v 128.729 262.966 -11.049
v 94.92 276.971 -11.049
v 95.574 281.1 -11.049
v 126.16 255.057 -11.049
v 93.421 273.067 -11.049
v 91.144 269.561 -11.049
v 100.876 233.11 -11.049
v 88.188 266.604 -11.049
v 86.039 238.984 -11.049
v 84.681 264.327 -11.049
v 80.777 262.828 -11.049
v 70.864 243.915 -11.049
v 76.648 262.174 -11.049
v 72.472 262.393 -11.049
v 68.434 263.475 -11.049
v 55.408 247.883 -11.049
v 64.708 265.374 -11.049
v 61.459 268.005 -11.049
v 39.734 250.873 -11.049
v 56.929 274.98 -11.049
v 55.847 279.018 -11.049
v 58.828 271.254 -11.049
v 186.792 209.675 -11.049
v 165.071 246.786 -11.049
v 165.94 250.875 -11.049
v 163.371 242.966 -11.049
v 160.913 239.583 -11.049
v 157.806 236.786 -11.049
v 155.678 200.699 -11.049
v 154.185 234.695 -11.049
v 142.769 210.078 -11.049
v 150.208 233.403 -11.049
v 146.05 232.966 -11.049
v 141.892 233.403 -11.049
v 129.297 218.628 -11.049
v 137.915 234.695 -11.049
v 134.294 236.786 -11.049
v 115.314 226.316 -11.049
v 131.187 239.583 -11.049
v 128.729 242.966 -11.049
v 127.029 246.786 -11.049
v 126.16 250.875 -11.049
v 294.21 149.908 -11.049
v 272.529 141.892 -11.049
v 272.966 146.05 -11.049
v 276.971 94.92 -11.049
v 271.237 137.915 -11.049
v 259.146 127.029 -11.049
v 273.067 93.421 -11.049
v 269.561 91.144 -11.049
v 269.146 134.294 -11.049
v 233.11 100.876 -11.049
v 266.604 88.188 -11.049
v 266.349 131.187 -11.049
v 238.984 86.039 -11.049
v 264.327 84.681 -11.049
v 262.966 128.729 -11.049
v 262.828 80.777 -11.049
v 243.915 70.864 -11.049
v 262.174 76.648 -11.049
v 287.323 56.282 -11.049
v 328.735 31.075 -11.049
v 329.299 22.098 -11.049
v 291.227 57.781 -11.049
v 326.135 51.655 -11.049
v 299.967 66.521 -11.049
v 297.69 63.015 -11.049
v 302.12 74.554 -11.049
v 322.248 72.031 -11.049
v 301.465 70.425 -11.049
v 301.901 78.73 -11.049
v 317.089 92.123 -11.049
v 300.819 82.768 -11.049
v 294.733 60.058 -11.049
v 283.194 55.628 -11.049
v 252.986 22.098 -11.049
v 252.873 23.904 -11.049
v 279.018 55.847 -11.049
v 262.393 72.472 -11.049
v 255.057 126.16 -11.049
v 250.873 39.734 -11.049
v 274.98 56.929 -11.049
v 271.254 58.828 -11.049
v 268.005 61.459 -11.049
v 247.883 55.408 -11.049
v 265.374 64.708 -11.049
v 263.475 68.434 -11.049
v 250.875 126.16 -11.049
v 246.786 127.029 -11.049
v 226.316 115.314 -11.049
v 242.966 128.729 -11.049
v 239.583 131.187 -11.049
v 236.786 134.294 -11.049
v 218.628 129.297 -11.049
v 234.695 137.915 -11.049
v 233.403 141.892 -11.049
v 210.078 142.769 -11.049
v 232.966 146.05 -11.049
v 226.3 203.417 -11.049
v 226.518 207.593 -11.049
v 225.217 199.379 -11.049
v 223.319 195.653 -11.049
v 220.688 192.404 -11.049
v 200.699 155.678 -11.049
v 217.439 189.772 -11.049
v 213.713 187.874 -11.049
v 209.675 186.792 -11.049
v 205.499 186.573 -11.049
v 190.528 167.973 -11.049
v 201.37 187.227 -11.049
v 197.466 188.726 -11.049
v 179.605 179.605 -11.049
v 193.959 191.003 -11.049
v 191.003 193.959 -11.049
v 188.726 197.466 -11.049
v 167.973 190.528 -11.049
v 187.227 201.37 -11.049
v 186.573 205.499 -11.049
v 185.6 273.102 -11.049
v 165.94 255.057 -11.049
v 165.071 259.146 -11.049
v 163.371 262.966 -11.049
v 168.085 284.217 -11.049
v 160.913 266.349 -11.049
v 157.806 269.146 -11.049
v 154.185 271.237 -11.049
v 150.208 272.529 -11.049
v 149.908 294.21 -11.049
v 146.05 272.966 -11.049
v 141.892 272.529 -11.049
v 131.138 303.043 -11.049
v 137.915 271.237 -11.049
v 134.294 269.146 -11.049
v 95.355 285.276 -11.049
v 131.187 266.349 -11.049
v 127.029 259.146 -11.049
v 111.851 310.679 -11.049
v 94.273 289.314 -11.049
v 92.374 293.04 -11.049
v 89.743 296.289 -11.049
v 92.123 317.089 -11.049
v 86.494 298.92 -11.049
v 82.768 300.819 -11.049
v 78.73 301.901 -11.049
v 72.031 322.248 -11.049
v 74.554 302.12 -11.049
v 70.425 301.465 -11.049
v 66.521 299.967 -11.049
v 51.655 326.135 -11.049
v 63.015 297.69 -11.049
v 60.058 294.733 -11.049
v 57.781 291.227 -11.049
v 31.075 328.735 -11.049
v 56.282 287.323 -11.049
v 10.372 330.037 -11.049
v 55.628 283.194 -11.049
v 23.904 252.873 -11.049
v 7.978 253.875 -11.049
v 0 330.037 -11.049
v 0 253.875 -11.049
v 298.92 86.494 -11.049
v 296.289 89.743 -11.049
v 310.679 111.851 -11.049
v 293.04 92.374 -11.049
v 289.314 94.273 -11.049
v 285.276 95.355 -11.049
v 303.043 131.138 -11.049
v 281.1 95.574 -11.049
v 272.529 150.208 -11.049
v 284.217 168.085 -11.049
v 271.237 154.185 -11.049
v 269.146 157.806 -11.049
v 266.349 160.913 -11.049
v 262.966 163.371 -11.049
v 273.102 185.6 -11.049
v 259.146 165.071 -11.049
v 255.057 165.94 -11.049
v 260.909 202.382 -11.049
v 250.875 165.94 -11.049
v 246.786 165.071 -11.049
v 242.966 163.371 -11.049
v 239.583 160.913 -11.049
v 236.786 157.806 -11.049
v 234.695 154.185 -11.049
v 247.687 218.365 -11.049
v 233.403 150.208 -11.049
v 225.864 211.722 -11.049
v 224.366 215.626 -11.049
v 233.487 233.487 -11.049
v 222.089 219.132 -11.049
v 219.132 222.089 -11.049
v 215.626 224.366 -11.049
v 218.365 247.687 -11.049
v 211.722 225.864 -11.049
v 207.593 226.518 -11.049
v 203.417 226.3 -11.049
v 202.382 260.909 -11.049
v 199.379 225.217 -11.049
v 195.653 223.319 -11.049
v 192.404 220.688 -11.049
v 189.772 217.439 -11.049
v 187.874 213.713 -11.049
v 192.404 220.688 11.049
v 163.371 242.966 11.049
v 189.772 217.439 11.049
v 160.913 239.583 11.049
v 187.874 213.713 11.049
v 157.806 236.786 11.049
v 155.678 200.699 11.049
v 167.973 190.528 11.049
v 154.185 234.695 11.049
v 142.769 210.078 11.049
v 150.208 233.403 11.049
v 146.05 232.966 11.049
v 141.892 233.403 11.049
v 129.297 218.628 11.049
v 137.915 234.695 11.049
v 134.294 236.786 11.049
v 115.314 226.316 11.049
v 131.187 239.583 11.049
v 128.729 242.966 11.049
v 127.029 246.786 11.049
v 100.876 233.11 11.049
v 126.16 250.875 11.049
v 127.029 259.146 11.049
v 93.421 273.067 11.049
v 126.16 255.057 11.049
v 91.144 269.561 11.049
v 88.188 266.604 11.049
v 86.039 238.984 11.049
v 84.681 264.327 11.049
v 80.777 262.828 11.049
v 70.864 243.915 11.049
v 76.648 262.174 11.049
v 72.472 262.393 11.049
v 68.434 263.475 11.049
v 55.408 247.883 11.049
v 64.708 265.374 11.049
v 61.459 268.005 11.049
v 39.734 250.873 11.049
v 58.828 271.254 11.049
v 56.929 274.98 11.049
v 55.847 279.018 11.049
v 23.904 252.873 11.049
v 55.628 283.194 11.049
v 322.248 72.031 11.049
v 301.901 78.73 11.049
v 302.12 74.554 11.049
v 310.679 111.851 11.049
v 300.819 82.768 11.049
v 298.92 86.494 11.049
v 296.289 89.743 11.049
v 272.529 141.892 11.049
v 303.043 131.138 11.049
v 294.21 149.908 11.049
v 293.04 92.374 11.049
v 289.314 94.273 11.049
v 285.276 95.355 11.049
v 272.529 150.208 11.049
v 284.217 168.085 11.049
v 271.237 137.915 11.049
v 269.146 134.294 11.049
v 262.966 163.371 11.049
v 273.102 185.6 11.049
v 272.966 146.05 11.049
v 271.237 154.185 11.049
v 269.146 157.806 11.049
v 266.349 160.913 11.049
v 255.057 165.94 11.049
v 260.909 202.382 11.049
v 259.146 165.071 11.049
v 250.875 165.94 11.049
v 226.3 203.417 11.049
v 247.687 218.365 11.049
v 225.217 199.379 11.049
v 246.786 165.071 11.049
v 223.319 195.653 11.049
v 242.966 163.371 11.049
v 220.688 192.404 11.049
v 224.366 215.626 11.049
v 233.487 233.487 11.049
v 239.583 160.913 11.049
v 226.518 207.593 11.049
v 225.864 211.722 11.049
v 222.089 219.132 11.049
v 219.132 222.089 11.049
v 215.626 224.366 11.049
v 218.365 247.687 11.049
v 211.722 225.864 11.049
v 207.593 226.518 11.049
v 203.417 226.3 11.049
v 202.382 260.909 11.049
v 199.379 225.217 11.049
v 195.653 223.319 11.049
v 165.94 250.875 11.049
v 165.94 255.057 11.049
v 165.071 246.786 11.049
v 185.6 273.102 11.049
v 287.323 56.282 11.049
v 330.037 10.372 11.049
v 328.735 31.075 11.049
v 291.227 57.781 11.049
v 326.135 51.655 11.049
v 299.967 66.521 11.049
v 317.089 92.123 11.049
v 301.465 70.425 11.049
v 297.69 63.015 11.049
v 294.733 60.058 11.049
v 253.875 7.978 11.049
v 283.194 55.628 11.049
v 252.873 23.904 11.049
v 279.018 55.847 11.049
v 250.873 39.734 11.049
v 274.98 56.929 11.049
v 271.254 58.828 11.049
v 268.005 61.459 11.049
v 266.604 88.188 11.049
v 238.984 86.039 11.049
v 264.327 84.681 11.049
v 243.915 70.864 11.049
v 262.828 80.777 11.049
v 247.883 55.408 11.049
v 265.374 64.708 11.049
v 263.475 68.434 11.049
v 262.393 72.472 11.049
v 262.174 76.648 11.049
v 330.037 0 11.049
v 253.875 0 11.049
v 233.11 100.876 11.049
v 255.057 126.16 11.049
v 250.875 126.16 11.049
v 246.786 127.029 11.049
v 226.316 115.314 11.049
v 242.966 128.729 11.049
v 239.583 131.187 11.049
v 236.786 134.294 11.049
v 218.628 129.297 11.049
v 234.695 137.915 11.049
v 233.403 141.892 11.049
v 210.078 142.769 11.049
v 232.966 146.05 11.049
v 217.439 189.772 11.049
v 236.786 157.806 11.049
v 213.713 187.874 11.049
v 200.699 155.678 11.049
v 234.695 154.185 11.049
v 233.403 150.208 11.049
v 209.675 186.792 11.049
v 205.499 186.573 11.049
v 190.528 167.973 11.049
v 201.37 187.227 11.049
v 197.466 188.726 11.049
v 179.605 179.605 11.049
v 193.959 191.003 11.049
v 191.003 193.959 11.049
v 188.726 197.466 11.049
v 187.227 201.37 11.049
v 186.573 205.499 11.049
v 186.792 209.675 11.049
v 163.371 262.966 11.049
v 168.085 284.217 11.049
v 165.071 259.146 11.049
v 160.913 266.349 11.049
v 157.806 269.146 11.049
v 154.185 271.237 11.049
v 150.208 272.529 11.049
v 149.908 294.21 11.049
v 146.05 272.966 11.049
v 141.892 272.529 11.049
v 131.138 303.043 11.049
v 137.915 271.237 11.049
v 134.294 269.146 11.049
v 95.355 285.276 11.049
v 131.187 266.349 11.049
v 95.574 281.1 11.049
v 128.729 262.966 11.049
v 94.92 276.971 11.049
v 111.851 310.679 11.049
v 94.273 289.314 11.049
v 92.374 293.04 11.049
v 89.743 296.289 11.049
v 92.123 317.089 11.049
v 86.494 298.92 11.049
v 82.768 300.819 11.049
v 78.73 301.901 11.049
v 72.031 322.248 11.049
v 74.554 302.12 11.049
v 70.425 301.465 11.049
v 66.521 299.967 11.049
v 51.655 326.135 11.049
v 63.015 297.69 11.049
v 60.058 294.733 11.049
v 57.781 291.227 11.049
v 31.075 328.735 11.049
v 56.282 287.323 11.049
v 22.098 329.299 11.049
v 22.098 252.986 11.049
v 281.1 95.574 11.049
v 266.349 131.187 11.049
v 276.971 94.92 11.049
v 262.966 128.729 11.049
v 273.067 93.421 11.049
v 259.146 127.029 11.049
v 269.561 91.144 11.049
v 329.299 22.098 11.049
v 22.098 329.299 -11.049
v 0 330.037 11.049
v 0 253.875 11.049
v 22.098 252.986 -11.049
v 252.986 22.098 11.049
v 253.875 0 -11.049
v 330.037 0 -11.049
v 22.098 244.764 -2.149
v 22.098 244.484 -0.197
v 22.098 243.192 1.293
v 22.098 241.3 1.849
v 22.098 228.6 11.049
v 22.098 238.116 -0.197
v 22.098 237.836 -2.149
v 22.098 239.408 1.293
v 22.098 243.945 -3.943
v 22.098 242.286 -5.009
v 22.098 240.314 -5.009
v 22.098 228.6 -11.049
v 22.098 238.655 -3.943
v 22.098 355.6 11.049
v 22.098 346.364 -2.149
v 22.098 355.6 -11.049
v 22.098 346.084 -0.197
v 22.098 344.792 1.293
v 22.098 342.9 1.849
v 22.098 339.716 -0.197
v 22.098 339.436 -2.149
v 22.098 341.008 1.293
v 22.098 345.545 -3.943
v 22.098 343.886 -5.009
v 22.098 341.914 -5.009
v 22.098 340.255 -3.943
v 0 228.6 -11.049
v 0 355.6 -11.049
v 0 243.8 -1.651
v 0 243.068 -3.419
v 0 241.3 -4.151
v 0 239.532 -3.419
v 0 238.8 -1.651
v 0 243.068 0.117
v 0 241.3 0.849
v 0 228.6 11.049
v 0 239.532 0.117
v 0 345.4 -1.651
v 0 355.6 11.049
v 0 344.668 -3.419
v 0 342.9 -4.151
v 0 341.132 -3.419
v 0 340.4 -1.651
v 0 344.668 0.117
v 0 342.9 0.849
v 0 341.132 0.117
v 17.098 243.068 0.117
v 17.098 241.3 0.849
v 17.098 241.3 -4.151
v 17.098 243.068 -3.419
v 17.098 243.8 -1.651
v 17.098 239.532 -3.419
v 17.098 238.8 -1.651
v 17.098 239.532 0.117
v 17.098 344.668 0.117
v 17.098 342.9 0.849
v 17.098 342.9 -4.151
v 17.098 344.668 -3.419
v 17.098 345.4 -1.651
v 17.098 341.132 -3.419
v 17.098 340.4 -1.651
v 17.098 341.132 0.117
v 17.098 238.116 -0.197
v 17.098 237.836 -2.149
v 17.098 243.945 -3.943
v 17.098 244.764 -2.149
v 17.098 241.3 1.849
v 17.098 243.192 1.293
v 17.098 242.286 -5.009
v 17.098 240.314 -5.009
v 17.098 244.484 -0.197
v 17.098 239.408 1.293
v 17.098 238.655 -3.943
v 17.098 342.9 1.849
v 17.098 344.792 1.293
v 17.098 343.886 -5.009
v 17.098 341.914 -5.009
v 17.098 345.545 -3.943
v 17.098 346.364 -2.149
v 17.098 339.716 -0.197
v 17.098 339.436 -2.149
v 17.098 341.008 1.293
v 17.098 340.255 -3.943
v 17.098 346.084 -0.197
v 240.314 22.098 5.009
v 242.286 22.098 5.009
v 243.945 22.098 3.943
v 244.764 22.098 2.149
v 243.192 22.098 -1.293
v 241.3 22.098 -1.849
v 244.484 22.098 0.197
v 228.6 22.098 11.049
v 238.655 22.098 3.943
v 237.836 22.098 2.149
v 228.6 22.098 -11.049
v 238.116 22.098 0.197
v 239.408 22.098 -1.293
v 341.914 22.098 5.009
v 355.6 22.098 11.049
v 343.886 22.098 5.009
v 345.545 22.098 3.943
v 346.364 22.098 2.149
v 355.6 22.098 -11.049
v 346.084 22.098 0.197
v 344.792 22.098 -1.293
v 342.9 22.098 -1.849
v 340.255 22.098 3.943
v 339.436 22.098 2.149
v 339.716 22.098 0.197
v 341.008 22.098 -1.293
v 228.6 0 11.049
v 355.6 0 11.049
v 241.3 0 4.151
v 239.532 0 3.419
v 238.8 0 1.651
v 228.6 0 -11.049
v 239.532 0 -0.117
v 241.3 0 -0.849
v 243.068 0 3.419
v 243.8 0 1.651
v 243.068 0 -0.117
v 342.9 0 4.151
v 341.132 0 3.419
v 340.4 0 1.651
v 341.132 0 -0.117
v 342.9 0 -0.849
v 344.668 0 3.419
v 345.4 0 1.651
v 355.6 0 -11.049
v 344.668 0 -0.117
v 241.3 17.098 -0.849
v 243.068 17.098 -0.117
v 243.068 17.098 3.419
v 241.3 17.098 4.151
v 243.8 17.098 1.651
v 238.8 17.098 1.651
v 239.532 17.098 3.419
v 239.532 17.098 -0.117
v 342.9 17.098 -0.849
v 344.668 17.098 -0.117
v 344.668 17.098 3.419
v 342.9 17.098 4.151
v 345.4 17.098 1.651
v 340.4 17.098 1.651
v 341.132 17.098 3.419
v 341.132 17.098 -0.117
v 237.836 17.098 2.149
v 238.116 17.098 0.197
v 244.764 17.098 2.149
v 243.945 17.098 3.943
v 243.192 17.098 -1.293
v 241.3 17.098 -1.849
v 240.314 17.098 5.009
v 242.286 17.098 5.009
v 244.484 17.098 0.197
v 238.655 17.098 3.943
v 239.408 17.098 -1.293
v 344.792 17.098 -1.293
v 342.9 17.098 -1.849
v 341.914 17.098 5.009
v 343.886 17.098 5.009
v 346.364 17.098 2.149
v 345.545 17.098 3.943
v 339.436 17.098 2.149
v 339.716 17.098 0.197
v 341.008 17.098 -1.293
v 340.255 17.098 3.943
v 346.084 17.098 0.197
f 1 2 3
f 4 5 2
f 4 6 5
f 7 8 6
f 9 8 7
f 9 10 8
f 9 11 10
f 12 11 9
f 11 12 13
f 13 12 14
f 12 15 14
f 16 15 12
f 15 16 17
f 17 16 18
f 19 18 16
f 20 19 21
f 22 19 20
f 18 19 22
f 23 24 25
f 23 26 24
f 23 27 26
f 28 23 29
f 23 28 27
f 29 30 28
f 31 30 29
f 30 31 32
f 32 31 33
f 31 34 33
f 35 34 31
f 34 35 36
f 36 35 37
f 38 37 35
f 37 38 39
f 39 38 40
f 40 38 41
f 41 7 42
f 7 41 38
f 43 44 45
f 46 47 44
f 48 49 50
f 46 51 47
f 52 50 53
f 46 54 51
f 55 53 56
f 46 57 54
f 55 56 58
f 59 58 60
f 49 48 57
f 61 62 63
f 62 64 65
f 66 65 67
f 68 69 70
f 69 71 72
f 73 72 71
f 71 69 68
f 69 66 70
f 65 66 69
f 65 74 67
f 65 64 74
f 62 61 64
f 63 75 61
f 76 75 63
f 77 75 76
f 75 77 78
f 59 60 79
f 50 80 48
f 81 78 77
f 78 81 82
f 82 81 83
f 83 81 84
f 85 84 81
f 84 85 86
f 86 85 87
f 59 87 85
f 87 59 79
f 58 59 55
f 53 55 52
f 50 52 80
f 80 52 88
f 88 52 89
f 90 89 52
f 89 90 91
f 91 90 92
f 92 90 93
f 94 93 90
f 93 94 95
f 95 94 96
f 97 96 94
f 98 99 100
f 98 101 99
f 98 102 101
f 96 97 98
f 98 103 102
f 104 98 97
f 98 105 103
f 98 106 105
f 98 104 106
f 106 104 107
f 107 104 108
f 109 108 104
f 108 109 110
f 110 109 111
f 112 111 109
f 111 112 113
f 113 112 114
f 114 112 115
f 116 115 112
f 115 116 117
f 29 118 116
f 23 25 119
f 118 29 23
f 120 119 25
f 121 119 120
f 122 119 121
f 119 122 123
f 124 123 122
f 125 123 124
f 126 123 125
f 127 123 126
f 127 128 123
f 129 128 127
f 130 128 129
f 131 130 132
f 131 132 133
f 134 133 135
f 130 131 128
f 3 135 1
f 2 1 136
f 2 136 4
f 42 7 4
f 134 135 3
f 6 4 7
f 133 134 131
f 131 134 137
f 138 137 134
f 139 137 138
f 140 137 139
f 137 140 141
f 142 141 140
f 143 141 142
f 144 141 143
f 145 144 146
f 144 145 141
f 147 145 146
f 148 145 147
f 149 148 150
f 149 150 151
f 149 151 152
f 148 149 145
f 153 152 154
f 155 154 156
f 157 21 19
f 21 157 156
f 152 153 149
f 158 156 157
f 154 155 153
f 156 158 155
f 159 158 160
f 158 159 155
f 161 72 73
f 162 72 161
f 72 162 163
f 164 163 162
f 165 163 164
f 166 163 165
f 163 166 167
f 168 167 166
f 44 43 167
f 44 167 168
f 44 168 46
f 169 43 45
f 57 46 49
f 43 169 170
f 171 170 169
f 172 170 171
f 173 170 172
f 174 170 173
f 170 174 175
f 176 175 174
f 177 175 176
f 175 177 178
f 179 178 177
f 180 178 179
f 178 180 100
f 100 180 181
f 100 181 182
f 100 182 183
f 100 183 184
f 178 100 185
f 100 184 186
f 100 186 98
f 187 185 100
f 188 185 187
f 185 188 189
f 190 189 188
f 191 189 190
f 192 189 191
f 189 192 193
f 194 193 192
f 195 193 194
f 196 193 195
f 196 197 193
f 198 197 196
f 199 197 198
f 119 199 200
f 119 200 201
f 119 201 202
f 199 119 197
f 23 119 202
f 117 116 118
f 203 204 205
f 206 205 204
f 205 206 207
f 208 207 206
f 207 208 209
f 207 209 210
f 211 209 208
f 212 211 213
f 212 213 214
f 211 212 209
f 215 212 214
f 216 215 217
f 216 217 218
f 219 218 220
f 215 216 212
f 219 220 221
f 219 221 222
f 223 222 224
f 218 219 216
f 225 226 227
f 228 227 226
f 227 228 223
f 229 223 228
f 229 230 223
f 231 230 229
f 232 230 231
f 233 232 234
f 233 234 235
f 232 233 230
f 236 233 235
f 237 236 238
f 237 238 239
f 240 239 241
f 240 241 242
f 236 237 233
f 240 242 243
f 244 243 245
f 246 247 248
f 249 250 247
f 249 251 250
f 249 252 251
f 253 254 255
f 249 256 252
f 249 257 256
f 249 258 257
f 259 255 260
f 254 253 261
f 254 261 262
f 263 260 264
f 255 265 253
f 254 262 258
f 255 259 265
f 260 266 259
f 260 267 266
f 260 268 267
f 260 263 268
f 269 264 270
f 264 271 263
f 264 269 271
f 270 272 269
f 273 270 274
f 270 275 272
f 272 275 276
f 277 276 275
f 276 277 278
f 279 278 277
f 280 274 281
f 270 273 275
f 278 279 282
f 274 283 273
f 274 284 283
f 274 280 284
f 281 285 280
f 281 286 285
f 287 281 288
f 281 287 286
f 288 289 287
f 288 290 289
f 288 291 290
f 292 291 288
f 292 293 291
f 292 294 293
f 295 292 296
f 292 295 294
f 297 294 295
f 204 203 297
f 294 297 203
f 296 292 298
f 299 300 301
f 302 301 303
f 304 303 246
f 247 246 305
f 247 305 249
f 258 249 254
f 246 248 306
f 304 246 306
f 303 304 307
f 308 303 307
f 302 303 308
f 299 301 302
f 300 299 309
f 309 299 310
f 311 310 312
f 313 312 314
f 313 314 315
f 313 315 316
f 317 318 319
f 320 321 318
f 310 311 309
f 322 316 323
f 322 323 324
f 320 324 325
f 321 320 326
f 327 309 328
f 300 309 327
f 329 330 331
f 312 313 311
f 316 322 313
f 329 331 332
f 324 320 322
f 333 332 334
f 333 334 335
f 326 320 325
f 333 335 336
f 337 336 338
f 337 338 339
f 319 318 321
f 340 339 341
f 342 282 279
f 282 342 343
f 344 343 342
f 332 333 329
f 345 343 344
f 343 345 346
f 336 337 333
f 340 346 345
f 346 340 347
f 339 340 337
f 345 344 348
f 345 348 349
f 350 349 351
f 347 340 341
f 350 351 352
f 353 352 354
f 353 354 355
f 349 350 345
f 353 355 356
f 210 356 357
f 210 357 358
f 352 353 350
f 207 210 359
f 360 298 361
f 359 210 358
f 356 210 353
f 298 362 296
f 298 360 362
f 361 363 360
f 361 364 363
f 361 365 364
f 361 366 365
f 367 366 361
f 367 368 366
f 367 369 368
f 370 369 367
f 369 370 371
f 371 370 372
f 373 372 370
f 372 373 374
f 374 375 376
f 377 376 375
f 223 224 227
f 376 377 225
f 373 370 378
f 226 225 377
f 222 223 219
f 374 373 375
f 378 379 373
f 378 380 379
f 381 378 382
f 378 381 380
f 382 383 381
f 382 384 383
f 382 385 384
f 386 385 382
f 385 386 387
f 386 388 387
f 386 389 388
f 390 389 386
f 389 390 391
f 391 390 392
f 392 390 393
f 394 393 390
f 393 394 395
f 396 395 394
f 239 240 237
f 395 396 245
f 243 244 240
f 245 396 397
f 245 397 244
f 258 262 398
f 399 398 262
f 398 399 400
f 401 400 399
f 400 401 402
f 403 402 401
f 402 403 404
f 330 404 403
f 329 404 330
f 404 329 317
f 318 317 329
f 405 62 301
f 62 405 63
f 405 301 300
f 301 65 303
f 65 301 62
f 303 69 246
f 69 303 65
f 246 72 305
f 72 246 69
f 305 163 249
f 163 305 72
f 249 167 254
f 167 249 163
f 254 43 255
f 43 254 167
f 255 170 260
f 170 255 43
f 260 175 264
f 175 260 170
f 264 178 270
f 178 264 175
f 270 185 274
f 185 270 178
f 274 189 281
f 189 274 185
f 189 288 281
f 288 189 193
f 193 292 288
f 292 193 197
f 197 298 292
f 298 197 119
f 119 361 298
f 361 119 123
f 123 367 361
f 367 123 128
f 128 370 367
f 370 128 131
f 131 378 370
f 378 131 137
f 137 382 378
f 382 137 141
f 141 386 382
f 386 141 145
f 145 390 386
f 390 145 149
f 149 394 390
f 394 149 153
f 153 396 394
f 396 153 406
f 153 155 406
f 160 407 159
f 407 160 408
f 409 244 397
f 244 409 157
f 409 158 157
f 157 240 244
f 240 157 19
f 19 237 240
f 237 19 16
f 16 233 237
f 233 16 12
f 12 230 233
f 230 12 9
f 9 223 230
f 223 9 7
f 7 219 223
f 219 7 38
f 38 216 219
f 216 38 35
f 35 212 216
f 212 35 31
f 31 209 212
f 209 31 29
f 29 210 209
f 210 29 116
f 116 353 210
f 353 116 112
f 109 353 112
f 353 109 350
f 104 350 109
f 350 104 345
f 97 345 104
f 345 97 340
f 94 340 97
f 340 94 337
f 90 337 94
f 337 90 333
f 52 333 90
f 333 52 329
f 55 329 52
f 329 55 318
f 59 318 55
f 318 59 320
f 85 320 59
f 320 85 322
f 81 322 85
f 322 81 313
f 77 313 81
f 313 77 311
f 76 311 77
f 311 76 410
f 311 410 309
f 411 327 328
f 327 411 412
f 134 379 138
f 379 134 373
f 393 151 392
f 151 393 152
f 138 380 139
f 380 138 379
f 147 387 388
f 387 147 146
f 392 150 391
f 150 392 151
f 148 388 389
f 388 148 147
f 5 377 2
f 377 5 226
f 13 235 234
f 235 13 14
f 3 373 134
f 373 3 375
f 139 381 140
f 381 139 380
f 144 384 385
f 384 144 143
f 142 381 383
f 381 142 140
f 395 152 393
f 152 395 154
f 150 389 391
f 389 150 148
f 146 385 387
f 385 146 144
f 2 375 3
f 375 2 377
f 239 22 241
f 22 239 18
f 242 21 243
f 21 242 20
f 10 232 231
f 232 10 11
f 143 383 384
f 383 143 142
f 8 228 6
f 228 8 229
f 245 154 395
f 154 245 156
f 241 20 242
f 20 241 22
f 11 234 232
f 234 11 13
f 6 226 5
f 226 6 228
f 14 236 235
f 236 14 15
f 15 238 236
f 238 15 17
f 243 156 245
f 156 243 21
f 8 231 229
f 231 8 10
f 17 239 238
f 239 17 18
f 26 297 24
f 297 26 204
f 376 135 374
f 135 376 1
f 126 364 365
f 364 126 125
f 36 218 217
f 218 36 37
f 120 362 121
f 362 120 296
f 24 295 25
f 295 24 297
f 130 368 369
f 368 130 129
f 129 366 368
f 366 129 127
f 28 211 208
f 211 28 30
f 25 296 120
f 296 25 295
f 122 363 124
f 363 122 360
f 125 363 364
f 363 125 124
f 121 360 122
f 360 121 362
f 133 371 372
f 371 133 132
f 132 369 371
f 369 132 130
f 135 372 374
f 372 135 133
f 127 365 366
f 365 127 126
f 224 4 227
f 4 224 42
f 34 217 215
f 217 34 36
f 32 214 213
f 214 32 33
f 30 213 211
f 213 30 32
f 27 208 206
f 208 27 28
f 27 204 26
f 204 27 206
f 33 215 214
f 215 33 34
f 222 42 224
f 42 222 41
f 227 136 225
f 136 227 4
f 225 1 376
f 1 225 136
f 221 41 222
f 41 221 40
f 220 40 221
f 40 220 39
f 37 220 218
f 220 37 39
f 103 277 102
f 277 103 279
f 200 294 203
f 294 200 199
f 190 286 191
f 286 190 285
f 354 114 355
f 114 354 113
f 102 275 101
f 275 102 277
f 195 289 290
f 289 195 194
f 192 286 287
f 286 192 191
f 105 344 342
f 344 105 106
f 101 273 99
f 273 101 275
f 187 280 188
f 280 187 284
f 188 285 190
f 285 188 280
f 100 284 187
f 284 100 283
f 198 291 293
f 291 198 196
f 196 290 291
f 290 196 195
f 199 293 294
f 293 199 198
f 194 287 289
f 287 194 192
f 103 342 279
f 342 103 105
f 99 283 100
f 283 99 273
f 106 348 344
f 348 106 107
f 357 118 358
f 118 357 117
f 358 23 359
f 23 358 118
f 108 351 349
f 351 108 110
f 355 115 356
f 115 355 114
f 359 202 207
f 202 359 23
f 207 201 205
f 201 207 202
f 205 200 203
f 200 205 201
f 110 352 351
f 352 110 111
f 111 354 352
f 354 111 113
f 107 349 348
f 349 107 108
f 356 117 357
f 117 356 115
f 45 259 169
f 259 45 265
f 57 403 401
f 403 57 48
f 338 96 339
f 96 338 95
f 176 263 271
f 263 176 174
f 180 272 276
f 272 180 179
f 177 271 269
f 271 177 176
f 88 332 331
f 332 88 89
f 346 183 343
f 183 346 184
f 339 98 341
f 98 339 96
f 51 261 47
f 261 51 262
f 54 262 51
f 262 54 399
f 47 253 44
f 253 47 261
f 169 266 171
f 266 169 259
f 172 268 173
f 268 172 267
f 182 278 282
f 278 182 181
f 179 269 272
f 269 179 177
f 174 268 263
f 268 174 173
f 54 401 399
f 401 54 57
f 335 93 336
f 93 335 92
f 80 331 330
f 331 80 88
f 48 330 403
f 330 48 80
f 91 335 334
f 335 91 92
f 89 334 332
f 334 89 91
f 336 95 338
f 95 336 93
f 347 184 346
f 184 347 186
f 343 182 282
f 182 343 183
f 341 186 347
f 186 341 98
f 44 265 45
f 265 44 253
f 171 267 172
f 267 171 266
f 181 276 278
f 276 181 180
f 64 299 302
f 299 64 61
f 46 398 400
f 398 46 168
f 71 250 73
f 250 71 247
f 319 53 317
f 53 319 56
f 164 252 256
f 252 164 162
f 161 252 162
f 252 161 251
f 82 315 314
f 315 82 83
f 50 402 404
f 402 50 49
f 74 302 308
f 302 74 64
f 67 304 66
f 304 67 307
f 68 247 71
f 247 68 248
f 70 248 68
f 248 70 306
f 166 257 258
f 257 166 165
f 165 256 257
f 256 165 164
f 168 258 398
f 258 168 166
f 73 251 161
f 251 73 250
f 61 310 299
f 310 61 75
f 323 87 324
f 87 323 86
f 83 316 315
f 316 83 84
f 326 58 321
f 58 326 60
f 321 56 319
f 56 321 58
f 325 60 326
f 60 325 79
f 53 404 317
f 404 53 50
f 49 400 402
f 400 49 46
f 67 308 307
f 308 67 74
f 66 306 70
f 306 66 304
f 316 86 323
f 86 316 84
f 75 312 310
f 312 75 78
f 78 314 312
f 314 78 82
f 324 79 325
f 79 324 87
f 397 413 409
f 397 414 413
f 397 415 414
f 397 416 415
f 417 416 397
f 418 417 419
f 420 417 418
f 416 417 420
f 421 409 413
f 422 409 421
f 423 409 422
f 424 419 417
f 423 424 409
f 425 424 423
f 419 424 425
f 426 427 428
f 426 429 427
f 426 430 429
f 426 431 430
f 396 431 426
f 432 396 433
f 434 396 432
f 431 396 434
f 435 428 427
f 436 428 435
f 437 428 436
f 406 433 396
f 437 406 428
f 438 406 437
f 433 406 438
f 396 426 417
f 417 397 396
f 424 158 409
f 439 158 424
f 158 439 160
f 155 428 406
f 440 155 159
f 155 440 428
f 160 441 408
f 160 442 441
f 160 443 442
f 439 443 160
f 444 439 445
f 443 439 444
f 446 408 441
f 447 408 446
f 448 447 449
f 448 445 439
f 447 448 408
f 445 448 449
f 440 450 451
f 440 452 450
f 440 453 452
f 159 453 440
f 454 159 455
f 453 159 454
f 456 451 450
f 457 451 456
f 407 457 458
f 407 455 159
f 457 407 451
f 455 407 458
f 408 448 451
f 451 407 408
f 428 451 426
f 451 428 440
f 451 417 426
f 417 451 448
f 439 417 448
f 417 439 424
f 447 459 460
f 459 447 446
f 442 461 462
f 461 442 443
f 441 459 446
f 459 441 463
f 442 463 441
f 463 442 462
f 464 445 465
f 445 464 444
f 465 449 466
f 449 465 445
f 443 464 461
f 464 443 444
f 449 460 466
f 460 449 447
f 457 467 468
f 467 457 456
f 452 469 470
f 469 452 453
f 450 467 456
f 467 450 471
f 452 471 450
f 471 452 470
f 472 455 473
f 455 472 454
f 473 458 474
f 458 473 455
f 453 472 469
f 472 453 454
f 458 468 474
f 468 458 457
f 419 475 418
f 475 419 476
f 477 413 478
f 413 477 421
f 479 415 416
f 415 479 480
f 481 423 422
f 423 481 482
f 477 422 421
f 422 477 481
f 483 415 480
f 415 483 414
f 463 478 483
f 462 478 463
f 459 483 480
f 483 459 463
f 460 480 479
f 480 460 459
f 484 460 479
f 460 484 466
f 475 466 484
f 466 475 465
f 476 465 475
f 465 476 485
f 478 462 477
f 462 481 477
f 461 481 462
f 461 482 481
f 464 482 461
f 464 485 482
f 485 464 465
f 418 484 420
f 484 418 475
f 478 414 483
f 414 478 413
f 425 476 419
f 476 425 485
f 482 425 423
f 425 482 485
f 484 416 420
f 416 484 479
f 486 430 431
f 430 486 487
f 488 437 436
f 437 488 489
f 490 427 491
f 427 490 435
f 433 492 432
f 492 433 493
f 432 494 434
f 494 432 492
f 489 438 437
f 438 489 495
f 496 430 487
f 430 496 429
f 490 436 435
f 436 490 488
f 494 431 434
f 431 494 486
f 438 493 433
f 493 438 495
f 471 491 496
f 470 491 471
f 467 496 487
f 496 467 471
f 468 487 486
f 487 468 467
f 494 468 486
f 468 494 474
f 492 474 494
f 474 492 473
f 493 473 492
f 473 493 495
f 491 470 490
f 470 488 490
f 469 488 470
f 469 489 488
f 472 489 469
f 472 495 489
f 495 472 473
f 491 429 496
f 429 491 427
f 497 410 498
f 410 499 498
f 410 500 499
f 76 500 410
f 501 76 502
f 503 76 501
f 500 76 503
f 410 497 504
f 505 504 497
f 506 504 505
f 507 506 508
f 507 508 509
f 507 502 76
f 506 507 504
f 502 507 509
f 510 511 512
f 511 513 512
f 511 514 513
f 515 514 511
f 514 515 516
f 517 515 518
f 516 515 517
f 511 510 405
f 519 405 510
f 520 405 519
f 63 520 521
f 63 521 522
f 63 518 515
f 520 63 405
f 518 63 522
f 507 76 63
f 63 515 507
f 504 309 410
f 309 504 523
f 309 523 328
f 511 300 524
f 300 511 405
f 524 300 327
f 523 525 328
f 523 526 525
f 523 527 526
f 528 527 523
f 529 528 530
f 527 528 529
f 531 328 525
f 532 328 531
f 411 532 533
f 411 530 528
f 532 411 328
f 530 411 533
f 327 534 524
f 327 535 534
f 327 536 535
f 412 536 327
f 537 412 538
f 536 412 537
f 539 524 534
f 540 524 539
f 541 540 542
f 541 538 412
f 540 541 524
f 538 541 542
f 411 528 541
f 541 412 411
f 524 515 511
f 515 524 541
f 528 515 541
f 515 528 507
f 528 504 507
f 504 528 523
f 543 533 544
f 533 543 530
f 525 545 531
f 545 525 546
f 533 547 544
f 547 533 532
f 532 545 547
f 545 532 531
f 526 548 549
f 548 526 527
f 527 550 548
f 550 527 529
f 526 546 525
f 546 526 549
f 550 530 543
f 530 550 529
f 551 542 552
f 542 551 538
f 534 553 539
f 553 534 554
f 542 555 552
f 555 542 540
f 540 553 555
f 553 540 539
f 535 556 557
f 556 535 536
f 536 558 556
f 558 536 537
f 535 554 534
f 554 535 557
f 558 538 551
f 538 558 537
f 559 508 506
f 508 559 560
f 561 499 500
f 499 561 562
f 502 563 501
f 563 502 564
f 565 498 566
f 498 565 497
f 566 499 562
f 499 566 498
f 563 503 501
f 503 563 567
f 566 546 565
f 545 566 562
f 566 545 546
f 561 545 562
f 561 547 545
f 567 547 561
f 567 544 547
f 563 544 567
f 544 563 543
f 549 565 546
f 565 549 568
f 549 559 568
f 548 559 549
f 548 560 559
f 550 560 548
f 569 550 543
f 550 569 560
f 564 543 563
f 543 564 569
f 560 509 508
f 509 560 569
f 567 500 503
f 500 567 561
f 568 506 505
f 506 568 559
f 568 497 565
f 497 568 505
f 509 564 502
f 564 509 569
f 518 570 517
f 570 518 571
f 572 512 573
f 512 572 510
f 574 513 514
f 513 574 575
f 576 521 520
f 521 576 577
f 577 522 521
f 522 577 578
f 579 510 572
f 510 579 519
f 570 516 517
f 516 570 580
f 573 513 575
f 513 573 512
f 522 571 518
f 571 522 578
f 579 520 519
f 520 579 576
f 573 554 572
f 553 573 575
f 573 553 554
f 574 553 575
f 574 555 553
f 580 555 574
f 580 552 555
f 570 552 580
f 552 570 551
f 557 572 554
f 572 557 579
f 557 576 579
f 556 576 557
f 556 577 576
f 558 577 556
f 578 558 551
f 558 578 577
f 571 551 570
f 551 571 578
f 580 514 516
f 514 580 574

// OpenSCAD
// Source
// https://www.thingiverse.com/thing:1092611/#files

inch = 25.4;
estowall = .067 * inch;
estosize = .87 * inch;

module arc(radius, thickness, angle, fragments){
  $fn=fragments;
	intersection(){
		union(){
			rights = floor(angle/90);
			remain = angle-rights*90;
			if(angle > 90){
				for(i = [0:rights-1]){
					rotate(i*90-(rights-1)*90/2){
						polygon([[0, 0], [radius+thickness, (radius+thickness)*tan(90/2)], [radius+thickness, -(radius+thickness)*tan(90/2)]]);
					}
				}
				rotate(-(rights)*90/2)
					polygon([[0, 0], [radius+thickness, 0], [radius+thickness, -(radius+thickness)*tan(remain/2)]]);
				rotate((rights)*90/2)
					polygon([[0, 0], [radius+thickness, (radius+thickness)*tan(remain/2)], [radius+thickness, 0]]);
			}else{
				polygon([[0, 0], [radius+thickness, (radius+thickness)*tan(angle/2)], [radius+thickness, -(radius+thickness)*tan(angle/2)]]);
			}
		}
		difference(){
			circle(radius+thickness);
			circle(radius);
		}
	}
}

module brace_body(){
   rotate([0,0,45]) linear_extrude(height = estosize, center = true, convexity = 10, twist = 0) arc(10 * inch ,3 * inch,90,100);
}

module mounting_ear(){
    difference(){
        cube([estosize,5 * inch,estosize]);
        translate([0-inch,.5*inch, .5 *inch]) rotate([0,90,0]) cylinder(r=2.5,h=estosize+100);
        translate([0-inch,4.5*inch, .5 *inch]) rotate([0,90,0]) cylinder(r=2.5,h=estosize+100);
        translate([-5,.5*inch, .5 *inch]) rotate([0,90,0]) cylinder(r=3.5,h=10);
        translate([-5,4.5*inch, .5 *inch]) rotate([0,90,0]) cylinder(r=3.5,h=10);
    }    
}

difference(){
    brace_body();
    rotate([0,0,-15]) translate([0,11.5*inch,0-estosize+5]) cylinder(r=20,h=estosize+10);
    rotate([0,0,-30]) translate([0,11.5*inch,0-estosize+5]) cylinder(r=20,h=estosize+10);
    rotate([0,0,-45]) translate([0,11.5*inch,0-estosize+5]) cylinder(r=20,h=estosize+10);
    rotate([0,0,-60]) translate([0,11.5*inch,0-estosize+5]) cylinder(r=20,h=estosize+10);
    rotate([0,0,-75]) translate([0,11.5*inch,0-estosize+5]) cylinder(r=20,h=estosize+10);
}
rotate([0,180,0]) translate([-estosize,9*inch,0-estosize/2]) mounting_ear();
rotate([0,0,-90]) translate([-estosize,9*inch,0-estosize/2]) mounting_ear();
